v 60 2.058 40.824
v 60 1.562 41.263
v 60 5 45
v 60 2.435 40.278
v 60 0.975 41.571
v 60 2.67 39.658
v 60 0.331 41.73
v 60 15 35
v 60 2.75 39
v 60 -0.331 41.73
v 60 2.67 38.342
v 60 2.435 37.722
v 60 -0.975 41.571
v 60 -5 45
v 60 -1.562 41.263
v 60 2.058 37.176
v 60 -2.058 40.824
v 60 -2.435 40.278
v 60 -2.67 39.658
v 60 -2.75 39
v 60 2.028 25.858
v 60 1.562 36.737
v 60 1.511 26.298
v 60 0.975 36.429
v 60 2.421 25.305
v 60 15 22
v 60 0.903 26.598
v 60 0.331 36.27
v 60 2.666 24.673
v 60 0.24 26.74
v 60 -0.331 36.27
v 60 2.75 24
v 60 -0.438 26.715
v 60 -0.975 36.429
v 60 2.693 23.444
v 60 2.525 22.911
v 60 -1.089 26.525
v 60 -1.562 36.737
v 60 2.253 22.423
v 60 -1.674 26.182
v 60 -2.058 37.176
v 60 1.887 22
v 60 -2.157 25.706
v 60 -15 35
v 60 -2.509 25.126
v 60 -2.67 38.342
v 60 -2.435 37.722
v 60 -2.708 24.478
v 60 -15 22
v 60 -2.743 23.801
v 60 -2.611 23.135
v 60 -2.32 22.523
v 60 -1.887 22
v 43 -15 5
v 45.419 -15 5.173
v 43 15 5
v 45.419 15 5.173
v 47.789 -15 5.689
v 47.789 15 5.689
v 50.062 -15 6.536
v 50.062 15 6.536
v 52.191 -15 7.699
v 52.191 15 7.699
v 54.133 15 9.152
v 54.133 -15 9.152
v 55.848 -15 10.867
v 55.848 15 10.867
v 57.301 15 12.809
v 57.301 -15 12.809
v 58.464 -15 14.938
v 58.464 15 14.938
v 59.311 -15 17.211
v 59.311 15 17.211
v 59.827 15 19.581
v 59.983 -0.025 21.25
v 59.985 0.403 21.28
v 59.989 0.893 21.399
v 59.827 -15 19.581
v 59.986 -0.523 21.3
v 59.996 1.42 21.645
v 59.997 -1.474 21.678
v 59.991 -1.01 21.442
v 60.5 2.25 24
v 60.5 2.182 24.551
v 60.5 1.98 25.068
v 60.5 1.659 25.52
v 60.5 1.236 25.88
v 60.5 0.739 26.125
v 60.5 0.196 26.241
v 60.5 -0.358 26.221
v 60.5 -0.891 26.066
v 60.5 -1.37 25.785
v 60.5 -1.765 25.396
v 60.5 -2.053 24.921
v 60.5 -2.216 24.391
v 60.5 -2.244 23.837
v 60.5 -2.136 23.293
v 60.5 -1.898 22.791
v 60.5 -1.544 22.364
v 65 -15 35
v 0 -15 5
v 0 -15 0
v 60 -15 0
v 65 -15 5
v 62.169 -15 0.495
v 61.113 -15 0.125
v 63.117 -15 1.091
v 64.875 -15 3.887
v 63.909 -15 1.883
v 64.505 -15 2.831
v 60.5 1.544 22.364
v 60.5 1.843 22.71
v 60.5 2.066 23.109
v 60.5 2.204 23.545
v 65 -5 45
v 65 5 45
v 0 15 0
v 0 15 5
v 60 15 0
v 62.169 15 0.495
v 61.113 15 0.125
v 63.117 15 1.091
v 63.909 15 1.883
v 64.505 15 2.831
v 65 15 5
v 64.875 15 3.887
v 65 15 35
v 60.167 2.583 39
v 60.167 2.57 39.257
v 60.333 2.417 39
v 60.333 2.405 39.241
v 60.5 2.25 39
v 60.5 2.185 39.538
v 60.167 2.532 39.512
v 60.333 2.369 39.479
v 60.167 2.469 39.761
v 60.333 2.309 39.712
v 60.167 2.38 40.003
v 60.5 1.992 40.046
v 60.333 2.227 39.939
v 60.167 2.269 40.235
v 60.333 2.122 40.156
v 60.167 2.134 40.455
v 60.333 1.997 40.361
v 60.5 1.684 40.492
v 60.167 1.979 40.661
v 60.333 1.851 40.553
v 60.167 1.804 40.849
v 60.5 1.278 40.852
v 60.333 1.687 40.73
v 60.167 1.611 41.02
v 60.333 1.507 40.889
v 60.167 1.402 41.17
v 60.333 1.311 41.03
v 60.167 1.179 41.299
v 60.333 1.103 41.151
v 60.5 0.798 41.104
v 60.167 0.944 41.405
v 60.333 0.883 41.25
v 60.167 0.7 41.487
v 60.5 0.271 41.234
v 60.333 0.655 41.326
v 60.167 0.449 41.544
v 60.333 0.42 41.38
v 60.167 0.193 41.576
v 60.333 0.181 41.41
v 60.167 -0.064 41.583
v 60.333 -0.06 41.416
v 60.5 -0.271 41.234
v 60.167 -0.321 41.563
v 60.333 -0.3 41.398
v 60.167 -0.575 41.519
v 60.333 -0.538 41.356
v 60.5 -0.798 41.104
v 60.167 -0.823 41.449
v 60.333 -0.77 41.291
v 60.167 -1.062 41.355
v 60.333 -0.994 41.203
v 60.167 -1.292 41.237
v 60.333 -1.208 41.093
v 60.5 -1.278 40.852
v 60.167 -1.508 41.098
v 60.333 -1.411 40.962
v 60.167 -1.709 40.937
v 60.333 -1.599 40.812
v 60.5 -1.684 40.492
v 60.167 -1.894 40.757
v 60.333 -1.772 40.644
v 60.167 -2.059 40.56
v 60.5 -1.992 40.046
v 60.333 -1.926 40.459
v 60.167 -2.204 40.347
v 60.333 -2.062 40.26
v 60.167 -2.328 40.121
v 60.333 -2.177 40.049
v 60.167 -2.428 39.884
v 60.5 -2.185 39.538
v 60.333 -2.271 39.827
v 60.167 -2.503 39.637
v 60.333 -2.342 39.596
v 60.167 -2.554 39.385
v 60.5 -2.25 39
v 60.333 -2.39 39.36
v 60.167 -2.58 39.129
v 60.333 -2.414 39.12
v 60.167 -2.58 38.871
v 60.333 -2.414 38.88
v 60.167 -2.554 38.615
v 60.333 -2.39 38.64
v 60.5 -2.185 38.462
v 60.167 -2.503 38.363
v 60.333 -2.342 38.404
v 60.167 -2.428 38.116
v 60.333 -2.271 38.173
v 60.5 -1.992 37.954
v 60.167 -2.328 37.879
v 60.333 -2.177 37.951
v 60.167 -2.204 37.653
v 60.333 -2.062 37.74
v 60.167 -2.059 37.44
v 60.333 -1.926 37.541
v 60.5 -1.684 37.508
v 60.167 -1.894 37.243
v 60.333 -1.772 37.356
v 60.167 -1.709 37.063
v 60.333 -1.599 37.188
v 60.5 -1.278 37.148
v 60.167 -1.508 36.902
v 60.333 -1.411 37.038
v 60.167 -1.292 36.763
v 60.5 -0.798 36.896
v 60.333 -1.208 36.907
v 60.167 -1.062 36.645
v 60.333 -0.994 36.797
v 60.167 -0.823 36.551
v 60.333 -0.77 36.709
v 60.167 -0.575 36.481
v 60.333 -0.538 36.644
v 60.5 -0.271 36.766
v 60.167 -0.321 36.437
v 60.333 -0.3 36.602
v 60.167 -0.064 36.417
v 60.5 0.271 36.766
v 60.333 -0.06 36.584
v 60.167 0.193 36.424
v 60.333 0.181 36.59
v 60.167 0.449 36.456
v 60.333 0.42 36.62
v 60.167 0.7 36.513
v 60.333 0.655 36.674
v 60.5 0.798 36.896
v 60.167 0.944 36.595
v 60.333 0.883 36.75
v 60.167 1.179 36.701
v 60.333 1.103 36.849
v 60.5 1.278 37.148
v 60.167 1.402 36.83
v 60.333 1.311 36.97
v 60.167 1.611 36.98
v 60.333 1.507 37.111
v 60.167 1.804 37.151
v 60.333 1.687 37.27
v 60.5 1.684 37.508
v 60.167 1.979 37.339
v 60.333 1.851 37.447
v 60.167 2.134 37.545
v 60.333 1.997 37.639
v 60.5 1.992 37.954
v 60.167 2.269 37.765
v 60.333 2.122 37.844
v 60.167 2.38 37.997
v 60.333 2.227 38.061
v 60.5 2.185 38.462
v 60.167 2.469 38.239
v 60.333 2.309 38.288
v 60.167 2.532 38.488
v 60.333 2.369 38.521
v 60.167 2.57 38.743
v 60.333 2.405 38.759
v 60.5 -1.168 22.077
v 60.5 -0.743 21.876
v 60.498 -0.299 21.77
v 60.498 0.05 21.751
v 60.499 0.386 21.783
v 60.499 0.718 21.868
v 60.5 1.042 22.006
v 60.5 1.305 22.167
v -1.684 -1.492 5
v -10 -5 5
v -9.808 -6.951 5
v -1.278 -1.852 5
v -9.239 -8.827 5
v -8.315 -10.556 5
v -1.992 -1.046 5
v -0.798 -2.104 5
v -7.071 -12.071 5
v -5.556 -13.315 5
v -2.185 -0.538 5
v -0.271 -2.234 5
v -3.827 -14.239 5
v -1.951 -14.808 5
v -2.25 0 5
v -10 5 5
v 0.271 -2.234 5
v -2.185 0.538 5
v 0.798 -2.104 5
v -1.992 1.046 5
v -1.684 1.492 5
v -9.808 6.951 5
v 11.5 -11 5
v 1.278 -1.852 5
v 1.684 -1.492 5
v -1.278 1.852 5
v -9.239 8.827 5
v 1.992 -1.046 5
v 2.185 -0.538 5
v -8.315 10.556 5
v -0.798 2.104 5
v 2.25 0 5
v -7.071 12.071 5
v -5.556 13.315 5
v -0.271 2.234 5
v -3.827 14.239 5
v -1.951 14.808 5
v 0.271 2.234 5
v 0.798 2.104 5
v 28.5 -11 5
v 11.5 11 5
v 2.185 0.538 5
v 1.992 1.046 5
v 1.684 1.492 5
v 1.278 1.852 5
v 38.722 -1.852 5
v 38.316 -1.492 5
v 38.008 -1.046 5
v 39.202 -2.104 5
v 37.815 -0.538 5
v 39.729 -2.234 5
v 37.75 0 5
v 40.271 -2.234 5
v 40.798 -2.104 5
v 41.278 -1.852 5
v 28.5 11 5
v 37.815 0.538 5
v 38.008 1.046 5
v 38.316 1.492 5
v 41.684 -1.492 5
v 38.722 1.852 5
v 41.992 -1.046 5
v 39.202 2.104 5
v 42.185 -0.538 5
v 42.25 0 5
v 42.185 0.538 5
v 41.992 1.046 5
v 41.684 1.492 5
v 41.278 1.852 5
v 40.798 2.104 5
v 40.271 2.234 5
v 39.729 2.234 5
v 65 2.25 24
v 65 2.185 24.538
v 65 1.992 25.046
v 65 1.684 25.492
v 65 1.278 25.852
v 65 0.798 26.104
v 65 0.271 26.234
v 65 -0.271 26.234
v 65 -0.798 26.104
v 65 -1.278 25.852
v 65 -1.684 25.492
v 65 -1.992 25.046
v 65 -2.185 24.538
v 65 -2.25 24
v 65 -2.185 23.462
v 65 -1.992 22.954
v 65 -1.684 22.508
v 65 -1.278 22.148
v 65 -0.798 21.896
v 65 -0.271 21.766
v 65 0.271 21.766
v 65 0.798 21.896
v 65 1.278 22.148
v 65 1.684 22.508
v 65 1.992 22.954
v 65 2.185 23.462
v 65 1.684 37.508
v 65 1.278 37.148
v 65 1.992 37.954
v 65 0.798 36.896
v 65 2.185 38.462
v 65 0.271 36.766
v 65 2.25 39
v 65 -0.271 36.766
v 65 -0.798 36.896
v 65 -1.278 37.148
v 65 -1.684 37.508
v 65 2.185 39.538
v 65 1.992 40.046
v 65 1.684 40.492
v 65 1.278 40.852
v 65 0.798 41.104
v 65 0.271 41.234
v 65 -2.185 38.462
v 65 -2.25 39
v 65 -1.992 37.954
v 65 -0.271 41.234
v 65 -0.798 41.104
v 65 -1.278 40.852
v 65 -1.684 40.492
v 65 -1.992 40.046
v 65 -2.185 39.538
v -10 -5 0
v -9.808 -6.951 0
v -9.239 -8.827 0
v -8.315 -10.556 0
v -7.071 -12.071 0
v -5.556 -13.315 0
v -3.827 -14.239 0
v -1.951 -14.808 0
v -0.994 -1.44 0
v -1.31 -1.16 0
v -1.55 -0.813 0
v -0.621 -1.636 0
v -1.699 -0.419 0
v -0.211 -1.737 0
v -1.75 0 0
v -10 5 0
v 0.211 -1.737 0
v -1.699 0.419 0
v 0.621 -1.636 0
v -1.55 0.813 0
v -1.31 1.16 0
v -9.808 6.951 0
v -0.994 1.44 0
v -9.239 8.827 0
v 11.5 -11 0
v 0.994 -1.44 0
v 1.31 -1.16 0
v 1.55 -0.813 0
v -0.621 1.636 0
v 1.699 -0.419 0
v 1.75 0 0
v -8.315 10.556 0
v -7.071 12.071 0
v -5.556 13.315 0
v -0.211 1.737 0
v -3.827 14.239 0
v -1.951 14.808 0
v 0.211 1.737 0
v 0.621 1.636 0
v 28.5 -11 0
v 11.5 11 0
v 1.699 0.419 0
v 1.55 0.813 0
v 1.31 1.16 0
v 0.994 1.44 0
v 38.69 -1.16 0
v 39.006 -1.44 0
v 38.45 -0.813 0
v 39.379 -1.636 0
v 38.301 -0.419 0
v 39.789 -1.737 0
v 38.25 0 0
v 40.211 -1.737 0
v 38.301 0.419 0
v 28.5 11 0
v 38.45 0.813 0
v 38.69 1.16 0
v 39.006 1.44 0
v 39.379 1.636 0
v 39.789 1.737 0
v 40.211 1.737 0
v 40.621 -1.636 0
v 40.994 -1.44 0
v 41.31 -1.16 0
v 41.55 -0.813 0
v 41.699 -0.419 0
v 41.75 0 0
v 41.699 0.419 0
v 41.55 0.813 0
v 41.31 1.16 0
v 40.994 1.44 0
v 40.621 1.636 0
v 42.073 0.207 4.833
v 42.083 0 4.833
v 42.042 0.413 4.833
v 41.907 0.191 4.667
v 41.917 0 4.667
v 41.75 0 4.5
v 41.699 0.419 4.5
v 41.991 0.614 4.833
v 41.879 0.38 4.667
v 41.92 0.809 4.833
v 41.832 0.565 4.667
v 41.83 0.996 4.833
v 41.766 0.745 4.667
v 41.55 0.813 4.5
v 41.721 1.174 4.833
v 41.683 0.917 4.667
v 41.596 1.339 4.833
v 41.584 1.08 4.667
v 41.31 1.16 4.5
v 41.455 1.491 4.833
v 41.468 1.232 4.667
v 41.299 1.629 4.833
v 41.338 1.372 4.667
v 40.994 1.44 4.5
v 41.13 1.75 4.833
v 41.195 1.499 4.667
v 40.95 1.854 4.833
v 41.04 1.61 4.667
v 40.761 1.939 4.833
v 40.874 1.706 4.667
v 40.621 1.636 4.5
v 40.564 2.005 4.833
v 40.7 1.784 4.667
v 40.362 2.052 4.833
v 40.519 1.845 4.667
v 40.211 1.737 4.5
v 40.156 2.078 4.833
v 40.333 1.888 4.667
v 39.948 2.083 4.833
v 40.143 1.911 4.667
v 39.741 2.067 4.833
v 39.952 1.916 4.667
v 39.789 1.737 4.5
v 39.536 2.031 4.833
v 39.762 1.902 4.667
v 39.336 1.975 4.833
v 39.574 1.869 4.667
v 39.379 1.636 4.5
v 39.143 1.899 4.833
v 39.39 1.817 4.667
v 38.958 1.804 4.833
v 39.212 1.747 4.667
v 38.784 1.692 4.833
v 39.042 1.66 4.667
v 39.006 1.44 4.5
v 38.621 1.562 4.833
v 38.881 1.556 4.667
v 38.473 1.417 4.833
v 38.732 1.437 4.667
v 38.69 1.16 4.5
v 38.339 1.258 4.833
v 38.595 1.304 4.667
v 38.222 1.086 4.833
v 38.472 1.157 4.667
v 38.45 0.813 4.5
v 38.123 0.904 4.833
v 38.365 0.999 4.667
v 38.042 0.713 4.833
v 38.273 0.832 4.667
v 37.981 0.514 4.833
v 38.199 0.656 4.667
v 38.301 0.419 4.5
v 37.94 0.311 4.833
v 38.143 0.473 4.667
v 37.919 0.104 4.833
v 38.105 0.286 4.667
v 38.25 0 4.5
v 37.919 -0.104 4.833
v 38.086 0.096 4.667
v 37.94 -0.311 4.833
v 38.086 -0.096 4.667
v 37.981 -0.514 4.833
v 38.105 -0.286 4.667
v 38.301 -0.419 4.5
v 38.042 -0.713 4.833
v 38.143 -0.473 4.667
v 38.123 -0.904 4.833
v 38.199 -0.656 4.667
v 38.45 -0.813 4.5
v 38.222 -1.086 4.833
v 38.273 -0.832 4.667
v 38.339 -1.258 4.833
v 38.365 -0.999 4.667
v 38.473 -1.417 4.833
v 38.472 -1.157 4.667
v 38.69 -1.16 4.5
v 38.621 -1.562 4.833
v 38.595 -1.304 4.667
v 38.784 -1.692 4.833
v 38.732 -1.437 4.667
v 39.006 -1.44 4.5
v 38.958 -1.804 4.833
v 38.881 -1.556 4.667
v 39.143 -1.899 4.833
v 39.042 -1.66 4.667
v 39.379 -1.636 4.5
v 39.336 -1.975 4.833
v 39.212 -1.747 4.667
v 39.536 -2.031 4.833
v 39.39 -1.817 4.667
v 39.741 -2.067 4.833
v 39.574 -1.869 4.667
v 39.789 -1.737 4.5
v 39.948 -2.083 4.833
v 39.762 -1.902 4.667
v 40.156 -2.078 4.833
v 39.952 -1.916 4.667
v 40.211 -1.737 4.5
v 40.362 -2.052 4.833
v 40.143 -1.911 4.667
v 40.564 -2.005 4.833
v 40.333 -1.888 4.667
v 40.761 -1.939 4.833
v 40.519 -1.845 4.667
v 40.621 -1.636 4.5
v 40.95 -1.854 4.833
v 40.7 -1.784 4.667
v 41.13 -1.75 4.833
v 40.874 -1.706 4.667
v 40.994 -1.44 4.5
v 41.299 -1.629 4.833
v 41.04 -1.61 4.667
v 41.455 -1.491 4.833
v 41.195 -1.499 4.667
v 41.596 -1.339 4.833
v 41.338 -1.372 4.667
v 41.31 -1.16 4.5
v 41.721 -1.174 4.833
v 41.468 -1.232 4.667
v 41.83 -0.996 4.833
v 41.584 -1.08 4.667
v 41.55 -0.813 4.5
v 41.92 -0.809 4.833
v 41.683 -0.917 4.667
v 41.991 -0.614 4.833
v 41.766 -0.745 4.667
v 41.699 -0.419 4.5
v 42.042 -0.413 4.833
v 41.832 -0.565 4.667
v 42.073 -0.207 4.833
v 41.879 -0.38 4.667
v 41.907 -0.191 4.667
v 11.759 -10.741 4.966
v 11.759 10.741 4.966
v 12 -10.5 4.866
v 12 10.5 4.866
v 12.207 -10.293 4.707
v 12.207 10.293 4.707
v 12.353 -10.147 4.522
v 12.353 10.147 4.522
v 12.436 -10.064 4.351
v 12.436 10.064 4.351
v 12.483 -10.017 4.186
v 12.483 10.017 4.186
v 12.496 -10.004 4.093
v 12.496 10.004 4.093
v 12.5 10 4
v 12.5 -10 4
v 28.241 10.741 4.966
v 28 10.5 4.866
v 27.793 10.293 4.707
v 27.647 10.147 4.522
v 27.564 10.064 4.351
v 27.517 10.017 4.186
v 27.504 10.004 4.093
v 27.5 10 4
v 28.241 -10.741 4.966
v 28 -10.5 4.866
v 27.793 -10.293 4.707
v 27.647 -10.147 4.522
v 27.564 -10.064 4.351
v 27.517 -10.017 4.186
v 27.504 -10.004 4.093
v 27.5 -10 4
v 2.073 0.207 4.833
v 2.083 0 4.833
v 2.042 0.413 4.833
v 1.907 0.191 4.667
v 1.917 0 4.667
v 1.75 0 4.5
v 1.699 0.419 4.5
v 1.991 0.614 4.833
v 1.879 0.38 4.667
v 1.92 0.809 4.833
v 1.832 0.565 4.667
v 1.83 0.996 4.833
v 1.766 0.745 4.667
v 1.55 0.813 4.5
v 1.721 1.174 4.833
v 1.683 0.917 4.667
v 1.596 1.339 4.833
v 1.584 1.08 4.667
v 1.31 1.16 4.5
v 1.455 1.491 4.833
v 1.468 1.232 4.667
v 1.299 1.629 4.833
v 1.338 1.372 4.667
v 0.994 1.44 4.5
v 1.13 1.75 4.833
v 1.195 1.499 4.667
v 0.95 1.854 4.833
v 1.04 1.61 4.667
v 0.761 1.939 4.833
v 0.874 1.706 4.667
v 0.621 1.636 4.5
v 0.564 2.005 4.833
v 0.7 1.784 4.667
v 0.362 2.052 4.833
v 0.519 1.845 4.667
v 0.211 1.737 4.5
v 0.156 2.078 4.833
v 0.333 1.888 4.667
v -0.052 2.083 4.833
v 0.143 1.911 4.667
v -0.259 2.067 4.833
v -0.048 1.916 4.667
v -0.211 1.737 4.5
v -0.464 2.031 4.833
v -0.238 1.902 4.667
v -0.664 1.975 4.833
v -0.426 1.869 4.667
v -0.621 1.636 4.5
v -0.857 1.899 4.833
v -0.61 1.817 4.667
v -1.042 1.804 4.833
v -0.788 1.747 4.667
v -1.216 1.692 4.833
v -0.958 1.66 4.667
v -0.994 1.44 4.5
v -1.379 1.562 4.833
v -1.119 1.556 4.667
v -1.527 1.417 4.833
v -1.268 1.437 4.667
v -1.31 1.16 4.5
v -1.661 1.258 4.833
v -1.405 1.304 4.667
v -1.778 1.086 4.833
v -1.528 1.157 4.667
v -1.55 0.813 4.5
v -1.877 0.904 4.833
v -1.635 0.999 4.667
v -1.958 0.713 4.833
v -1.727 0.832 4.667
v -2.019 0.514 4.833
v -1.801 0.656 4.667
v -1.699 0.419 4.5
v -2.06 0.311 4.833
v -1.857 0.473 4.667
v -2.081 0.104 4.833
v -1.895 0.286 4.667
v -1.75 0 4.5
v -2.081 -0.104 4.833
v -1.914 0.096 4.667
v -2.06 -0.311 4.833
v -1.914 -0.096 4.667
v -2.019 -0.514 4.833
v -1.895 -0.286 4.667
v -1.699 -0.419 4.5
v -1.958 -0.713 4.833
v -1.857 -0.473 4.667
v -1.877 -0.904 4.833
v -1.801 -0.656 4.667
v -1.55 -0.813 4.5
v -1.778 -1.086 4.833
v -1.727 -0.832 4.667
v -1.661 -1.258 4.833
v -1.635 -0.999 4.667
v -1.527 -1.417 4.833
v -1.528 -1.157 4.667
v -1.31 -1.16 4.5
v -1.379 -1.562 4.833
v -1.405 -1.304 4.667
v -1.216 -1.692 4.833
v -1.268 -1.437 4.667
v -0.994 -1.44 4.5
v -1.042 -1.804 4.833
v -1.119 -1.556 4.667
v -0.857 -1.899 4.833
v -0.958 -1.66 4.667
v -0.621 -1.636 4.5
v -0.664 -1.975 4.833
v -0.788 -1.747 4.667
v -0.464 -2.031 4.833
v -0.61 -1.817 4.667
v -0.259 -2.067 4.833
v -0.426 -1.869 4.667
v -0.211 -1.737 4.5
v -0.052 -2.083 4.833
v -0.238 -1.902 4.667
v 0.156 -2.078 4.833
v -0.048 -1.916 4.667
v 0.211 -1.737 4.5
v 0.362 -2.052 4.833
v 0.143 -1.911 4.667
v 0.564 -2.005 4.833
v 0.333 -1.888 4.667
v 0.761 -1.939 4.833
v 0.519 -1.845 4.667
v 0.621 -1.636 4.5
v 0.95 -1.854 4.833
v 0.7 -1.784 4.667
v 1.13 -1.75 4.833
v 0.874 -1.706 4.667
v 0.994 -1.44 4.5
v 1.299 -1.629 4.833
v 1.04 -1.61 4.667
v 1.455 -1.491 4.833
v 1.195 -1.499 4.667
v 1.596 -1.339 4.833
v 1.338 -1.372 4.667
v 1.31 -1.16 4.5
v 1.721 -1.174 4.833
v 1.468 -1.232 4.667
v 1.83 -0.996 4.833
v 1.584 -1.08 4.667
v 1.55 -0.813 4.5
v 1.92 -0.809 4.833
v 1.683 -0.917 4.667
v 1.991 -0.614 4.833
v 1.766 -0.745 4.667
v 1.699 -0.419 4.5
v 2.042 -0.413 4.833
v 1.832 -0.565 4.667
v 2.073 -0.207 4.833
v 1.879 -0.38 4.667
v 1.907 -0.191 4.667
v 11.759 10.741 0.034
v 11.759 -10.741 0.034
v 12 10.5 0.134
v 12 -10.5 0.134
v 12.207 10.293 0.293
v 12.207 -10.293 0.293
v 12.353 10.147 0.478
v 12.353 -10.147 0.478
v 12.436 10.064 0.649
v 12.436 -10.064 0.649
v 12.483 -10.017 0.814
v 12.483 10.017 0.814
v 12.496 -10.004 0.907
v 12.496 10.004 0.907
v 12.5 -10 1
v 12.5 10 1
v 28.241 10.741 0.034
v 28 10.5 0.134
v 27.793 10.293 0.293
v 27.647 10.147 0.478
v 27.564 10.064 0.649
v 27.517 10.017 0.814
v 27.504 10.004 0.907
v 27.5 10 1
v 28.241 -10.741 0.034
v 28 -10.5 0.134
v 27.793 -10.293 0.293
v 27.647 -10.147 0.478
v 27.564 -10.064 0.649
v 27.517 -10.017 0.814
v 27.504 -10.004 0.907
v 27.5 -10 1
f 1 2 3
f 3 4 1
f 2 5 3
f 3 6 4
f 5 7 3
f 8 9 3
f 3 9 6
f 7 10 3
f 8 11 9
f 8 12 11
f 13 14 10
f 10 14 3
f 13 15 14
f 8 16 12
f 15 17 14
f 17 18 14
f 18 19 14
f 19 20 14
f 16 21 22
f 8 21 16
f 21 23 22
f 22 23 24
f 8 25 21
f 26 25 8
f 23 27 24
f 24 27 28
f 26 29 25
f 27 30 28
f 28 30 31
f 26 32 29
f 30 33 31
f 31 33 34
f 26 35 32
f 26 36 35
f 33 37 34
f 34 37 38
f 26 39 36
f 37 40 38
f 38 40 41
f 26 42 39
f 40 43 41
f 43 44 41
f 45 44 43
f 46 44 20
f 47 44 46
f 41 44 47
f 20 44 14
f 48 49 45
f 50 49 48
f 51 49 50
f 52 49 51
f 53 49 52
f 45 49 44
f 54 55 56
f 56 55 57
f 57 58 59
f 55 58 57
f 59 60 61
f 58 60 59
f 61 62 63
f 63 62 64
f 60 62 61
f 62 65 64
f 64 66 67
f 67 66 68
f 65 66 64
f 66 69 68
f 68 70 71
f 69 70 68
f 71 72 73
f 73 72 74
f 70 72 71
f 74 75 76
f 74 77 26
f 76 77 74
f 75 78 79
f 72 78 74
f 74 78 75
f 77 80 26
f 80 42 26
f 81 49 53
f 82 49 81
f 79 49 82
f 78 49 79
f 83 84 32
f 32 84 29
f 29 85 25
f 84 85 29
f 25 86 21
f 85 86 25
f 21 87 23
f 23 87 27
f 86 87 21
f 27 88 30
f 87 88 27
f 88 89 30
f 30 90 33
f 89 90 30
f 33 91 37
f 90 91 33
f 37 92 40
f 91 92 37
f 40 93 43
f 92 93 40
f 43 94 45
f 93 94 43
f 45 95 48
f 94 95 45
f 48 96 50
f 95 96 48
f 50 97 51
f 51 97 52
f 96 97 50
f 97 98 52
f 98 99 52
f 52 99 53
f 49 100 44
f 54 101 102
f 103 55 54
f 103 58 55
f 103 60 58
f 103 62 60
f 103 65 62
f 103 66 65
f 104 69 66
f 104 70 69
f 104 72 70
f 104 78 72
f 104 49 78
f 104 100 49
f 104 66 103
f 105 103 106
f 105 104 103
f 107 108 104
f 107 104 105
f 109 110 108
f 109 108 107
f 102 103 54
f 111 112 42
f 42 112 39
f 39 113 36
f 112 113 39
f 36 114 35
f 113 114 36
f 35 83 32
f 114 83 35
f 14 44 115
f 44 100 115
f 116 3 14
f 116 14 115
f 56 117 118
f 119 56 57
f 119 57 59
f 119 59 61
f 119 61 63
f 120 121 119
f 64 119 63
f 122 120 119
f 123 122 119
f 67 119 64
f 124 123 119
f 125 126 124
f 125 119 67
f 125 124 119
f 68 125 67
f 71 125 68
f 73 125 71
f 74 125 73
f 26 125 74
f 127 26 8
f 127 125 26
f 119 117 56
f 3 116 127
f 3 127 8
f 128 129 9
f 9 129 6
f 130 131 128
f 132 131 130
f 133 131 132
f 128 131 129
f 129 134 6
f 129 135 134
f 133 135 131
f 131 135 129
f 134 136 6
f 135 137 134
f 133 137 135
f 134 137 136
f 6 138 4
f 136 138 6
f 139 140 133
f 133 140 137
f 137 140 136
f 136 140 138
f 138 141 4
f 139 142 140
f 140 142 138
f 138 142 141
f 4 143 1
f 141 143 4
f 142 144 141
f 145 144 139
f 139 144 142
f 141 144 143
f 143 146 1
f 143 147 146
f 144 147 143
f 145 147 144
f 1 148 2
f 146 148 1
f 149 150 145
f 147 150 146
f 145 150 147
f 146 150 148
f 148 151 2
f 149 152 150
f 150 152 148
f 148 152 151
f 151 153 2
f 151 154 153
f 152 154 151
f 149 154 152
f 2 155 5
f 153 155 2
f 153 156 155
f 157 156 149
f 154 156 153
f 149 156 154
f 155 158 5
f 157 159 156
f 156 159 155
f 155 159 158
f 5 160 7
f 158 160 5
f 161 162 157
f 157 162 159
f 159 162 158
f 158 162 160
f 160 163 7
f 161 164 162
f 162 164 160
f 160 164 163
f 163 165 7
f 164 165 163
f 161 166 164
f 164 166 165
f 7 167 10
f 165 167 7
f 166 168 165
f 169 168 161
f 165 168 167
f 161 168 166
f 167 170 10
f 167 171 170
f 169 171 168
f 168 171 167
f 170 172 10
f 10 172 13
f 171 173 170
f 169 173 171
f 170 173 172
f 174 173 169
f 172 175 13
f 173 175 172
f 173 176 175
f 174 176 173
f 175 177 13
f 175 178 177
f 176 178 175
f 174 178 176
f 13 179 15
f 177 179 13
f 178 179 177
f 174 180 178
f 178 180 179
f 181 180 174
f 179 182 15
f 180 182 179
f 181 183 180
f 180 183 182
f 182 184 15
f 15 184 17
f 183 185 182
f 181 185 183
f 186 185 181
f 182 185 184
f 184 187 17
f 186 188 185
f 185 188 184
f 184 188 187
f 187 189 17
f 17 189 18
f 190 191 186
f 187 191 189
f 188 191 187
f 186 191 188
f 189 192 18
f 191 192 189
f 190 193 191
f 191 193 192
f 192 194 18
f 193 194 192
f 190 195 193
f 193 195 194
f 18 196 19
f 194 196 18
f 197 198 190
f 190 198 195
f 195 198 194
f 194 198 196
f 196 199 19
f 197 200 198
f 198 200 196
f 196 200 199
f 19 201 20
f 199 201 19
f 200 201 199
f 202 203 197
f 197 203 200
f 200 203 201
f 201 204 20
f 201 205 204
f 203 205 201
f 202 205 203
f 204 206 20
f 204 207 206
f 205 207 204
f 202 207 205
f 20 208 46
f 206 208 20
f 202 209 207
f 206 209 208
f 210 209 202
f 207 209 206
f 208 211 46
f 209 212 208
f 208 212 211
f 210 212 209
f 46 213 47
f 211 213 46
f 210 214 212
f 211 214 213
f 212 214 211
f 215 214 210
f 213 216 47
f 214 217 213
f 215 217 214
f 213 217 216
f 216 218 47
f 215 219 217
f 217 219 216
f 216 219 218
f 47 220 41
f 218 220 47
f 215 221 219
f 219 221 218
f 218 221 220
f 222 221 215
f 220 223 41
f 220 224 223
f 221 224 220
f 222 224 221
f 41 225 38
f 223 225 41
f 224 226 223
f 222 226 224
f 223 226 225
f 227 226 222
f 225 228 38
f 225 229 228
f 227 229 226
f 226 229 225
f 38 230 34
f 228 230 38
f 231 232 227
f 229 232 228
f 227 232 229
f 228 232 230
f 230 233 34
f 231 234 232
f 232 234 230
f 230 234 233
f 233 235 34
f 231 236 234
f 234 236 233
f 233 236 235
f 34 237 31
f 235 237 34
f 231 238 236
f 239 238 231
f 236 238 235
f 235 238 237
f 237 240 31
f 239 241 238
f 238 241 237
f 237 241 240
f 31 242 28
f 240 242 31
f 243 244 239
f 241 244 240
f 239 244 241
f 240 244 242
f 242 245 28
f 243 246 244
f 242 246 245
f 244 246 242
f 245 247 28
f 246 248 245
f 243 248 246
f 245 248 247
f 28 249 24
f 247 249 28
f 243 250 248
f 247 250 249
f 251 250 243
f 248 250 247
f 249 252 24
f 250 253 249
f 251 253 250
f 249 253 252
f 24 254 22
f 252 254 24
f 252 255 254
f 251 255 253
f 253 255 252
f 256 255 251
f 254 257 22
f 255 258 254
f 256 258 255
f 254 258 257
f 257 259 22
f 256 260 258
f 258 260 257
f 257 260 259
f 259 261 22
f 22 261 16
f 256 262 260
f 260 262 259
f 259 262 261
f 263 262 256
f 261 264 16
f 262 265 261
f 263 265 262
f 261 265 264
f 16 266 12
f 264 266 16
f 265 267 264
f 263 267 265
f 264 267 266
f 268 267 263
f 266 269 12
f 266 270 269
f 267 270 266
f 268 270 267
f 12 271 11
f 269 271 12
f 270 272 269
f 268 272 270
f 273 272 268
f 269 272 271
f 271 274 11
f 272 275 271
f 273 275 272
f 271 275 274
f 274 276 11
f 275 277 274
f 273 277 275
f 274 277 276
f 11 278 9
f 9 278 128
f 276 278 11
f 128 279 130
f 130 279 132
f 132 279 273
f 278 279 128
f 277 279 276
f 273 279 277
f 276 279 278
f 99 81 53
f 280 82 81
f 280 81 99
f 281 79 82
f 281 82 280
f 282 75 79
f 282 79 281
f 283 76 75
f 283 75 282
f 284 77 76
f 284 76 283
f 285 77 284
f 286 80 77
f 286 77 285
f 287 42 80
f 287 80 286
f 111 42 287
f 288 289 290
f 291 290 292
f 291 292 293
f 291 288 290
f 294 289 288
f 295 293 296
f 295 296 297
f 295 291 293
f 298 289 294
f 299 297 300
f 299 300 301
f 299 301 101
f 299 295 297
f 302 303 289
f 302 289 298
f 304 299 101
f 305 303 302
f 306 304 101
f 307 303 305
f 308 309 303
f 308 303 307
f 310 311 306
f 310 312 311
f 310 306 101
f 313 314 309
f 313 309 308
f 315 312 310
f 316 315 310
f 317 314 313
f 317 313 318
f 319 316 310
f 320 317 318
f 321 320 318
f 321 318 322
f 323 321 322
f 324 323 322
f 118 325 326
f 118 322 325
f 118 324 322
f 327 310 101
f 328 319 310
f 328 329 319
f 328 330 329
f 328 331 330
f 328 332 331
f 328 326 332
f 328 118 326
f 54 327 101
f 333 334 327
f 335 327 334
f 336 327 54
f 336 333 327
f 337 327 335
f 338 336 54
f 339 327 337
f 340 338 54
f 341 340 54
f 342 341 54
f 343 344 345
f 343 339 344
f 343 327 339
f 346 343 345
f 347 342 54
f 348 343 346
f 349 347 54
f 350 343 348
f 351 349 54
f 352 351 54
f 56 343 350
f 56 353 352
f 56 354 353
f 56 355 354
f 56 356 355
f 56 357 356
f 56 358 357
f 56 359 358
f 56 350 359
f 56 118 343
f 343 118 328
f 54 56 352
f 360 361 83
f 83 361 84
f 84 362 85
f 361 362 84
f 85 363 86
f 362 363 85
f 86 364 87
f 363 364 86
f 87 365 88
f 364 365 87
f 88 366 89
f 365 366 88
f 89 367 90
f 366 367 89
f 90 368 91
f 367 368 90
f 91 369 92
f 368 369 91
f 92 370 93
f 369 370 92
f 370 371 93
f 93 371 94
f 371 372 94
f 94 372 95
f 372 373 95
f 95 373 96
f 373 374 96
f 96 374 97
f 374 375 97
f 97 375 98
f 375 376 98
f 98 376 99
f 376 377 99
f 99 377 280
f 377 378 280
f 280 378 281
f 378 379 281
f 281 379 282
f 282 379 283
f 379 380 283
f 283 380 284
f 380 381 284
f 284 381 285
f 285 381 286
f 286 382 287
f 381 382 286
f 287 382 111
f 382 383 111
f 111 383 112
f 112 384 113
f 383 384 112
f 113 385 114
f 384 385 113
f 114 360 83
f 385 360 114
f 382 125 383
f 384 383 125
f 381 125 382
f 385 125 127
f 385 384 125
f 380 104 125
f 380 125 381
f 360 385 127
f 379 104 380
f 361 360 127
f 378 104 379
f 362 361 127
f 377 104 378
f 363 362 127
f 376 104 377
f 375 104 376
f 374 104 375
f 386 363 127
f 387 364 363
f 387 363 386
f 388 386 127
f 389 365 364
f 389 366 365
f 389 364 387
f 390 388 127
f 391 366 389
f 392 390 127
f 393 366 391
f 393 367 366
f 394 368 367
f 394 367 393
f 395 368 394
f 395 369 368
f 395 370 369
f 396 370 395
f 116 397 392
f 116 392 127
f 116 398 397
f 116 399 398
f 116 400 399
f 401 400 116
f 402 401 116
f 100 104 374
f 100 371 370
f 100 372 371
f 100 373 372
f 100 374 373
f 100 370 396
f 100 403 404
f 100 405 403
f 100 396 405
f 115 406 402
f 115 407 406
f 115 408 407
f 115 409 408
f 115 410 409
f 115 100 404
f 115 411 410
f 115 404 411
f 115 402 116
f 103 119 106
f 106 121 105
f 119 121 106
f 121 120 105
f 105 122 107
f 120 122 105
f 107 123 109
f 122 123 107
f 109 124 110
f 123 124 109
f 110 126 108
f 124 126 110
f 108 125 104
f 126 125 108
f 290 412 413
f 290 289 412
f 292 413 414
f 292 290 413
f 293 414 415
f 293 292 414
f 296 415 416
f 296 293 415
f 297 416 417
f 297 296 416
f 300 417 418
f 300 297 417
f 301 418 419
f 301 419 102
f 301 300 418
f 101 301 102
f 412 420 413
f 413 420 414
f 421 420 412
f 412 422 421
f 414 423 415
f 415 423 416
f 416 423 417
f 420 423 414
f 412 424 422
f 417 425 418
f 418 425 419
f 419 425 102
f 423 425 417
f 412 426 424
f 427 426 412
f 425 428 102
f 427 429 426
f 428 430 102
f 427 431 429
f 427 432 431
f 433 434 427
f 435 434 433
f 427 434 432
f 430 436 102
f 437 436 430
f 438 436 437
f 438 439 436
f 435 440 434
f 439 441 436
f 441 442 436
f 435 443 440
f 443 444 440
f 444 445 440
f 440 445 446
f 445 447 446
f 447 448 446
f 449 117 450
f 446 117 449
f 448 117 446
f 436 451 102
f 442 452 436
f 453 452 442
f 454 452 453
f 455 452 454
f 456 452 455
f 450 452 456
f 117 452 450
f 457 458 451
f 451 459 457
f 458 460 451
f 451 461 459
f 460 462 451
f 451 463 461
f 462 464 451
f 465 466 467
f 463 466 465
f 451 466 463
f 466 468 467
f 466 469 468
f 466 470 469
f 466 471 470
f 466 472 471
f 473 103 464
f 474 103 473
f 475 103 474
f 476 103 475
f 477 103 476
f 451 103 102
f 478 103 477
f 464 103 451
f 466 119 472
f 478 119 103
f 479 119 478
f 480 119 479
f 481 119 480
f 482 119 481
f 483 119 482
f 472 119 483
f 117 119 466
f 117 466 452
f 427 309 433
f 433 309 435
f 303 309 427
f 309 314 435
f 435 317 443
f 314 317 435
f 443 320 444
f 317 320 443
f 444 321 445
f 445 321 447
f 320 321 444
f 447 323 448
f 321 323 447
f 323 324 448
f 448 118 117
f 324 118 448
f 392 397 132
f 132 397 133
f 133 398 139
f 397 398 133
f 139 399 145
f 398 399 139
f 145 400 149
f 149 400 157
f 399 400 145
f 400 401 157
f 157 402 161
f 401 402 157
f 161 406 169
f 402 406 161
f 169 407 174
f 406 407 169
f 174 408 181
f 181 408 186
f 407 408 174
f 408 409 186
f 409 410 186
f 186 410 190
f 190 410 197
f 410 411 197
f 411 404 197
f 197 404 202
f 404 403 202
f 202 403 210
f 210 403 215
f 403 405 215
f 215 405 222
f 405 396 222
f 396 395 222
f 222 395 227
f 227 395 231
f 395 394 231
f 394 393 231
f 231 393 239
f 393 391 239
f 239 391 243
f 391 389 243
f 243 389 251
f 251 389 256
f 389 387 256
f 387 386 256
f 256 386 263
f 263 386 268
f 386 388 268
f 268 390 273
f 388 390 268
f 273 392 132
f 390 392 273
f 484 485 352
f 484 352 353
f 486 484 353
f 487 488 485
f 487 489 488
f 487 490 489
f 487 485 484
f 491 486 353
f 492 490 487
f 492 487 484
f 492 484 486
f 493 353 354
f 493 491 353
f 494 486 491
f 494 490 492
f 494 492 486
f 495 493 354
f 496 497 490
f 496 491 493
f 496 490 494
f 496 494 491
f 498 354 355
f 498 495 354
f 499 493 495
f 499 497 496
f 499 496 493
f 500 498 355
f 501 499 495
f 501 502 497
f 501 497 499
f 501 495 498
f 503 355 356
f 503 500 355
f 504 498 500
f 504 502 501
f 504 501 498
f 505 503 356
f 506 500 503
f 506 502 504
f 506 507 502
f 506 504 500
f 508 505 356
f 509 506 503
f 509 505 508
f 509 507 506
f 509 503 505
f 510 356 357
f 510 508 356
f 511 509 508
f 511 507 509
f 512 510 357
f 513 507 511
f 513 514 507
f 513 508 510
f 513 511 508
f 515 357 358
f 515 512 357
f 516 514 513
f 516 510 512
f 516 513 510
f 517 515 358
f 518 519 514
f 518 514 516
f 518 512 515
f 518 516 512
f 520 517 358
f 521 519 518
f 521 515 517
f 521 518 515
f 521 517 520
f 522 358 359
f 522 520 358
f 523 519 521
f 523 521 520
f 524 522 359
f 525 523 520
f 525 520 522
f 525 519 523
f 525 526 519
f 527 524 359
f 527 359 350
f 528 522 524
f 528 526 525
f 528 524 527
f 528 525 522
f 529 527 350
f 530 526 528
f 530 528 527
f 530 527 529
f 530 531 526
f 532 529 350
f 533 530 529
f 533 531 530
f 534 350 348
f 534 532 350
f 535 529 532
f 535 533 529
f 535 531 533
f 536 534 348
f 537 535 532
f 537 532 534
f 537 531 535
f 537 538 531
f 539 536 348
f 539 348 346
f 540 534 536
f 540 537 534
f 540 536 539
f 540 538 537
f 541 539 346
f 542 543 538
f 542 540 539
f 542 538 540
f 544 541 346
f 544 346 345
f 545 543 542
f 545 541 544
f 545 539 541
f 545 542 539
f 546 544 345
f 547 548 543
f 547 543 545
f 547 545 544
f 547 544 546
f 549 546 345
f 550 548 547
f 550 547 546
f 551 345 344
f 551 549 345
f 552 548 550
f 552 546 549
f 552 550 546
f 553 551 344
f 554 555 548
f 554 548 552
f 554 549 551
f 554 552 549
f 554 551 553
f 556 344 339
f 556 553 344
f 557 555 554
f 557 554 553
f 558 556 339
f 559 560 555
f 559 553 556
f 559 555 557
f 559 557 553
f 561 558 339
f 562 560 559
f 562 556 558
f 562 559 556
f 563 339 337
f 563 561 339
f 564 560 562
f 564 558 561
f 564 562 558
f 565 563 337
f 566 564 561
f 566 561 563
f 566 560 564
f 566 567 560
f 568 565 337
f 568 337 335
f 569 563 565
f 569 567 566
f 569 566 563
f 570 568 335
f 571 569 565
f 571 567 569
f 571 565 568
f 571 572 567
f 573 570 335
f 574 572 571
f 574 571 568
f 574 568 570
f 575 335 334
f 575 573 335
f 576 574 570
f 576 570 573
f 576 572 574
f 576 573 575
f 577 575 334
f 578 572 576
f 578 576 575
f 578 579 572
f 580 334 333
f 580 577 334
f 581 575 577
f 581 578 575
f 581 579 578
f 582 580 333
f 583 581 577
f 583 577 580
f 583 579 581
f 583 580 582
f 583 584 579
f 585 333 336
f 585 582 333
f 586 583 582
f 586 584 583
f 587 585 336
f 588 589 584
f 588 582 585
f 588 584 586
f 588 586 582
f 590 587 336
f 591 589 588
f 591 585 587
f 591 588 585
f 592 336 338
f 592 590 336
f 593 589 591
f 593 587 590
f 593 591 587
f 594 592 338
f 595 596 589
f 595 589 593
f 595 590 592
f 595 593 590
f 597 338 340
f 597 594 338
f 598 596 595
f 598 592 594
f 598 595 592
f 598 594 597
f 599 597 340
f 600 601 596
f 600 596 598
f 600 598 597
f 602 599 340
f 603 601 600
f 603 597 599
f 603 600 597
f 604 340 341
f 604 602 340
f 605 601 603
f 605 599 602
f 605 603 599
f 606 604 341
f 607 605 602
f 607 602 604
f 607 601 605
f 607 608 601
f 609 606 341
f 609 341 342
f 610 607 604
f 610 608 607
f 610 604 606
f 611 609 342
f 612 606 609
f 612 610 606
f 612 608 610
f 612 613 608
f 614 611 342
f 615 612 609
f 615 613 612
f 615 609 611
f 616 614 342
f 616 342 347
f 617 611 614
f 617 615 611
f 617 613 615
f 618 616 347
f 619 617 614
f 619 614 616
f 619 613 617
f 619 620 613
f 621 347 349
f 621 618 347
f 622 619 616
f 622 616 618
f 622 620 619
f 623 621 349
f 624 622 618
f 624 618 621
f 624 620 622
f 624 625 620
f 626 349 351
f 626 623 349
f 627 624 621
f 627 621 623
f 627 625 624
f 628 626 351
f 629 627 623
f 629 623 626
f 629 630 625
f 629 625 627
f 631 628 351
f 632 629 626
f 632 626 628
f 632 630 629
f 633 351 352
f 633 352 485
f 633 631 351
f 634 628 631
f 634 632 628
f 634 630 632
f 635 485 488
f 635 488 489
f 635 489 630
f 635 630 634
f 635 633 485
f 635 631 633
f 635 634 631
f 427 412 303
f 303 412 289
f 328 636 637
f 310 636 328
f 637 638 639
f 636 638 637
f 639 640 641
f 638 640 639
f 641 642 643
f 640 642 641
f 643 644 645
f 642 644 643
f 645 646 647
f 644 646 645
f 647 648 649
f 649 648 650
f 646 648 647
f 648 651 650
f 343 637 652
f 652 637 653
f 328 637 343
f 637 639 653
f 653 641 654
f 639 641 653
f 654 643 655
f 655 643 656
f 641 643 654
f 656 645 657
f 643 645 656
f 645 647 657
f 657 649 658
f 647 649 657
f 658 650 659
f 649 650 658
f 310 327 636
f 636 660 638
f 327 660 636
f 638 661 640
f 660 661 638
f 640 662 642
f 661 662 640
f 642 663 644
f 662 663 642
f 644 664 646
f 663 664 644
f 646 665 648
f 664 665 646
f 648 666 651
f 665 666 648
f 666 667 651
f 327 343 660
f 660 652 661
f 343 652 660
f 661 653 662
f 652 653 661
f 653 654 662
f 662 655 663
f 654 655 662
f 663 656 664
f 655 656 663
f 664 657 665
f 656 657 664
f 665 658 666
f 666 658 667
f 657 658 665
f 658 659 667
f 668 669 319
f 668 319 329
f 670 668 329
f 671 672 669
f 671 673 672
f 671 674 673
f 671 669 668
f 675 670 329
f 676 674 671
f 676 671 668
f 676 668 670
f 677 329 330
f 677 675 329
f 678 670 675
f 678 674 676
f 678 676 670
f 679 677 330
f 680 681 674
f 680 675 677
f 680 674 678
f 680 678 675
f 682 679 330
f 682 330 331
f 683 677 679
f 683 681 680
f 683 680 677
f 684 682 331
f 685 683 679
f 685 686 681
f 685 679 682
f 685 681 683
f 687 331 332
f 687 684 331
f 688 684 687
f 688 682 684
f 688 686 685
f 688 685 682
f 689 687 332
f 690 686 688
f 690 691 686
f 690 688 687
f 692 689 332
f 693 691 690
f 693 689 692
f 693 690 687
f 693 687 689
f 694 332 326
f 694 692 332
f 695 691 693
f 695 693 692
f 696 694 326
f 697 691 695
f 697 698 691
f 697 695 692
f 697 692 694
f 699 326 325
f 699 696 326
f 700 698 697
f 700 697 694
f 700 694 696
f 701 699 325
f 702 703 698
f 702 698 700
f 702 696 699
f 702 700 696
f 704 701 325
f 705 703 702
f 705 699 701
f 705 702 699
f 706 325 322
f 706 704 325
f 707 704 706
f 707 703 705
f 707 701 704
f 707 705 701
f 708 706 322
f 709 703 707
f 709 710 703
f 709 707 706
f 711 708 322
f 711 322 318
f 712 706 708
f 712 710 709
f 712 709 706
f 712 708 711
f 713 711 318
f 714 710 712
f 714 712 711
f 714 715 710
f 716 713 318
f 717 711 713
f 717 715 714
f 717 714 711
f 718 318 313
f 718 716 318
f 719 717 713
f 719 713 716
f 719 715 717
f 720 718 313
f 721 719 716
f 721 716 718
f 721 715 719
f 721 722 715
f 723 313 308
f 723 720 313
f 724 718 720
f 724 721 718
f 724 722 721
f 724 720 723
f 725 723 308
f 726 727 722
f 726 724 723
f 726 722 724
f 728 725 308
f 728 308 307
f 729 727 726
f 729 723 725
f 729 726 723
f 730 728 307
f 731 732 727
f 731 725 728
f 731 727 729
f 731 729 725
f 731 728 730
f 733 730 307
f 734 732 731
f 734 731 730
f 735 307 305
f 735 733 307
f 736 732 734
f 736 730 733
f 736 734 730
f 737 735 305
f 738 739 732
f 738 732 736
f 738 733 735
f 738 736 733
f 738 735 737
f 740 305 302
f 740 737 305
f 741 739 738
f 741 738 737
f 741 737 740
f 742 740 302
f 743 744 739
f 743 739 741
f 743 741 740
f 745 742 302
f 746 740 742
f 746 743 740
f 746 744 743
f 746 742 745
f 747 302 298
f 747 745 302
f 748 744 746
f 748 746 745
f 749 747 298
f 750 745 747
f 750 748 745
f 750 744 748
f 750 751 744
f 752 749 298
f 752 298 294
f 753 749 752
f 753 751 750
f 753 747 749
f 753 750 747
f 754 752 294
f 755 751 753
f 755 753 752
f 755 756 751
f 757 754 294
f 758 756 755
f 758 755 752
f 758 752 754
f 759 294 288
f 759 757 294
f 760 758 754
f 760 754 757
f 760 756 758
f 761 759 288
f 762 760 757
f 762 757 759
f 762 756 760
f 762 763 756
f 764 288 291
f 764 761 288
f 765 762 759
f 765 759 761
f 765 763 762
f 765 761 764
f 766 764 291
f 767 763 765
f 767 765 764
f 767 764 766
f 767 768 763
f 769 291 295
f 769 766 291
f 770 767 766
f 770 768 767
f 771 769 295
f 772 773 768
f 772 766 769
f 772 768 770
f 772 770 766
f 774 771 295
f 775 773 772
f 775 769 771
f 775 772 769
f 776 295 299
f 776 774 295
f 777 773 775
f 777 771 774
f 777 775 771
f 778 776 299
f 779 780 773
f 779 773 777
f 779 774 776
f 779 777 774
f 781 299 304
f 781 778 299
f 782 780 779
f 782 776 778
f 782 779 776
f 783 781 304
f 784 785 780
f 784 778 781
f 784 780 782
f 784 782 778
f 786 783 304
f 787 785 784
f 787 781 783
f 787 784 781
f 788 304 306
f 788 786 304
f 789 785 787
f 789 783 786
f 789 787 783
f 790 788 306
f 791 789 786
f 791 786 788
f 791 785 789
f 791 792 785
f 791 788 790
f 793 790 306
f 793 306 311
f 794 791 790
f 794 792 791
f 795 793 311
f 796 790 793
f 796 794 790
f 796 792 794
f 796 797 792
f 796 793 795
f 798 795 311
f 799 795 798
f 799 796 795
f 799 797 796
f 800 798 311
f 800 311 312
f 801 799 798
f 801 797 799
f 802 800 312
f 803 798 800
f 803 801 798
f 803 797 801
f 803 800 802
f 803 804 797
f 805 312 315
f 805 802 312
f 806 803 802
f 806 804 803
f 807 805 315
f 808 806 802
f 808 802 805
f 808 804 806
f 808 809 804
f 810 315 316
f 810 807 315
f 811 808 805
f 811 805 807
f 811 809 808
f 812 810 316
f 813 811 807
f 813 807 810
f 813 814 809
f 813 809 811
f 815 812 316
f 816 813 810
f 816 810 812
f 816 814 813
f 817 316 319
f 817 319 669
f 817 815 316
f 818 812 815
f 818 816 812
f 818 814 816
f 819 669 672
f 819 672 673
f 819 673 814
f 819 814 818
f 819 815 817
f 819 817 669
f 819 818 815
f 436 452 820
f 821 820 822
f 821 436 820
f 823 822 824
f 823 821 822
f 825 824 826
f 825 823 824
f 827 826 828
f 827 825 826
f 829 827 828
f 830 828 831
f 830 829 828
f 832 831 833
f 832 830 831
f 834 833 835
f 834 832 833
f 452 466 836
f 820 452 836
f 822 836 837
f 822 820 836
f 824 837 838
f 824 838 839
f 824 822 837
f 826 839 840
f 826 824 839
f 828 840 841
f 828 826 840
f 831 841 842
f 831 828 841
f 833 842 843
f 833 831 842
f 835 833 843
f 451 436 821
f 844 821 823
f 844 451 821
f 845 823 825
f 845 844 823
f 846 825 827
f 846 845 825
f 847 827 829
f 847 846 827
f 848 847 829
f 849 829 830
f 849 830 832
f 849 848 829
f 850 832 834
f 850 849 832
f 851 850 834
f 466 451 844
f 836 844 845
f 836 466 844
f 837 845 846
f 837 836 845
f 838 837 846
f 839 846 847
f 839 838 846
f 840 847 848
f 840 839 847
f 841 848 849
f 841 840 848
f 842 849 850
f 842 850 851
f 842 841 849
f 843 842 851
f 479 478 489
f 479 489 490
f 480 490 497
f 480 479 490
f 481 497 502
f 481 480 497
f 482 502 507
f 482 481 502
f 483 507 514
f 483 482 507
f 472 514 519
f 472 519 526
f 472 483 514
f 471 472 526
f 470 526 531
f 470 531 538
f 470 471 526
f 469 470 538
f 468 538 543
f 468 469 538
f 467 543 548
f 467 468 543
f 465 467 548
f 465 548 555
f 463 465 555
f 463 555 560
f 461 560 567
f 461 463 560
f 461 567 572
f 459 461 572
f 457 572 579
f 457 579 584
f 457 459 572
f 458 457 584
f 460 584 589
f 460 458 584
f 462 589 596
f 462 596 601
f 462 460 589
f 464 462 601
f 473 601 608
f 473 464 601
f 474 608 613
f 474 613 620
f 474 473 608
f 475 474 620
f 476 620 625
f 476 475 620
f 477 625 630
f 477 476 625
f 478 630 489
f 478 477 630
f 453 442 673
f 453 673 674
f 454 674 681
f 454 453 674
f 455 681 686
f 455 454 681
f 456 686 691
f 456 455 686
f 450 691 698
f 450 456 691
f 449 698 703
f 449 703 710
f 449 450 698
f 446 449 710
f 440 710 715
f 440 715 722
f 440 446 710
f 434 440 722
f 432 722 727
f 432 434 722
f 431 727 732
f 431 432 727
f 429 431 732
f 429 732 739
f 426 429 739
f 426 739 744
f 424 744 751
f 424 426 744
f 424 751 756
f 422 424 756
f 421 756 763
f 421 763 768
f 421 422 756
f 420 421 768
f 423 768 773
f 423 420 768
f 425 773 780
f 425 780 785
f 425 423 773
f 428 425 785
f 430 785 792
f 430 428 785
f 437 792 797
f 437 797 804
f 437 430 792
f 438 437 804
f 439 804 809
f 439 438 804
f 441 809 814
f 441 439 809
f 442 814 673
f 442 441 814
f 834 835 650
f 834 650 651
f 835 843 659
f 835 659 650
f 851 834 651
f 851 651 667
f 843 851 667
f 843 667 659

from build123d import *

# Parameters (mm, degrees)
SKETCH_W        = 75
SKETCH_H        = 30
SKETCH_R        = 1.75
SKETCH_W_2      = 15
SKETCH_H_2      = 20
PAD_DEPTH       = 5
FILLET_R        = 10
FILLET001_R     = 1
SKETCH001_W     = 5
SKETCH001_H     = 30
PAD001_DEPTH    = 40
FILLET002_R     = 5
FILLET003_R     = 17
SKETCH002_R     = 2.25
POCKET_DEPTH    = 75.001
CHAMFER_SIZE    = 10
CHAMFER001_SIZE = 0.5


with BuildPart() as part:
    # Sketch → Pad (new body)
    with BuildSketch(Plane.XY):
        with Locations((27.5, 0)):
            Rectangle(SKETCH_W, SKETCH_H)
        Circle(SKETCH_R, mode=Mode.SUBTRACT)
        with Locations((40, 0)):
            Circle(SKETCH_R, mode=Mode.SUBTRACT)
        with Locations((20, 0)):
            Rectangle(SKETCH_W_2, SKETCH_H_2, mode=Mode.SUBTRACT)
    extrude(amount=PAD_DEPTH)

    # Fillet
    fillet_edges = [part.edges().sort_by_distance(p)[0] for p in [
        (-10, 15, 2.5),
        (-10, -15, 2.5),
    ]]
    fillet(fillet_edges, radius=FILLET_R)

    # Fillet001
    fillet001_edges = [part.edges().sort_by_distance(p)[0] for p in [
        (12.5, 0, 5),
        (12.5, 0, 0),
        (20, 10, 0),
        (20, 10, 5),
        (27.5, 0, 5),
        (20, -10, 5),
        (27.5, 0, 0),
        (20, -10, 0),
    ]]
    fillet(fillet001_edges, radius=FILLET001_R)

    # Sketch001 (on Face18 of Fillet001) → Pad001 (join)
    with BuildSketch(Plane.XY.offset(5)):
        with Locations((62.5, 0)):
            Rectangle(SKETCH001_W, SKETCH001_H)
    extrude(amount=PAD001_DEPTH)

    # Fillet002
    fillet002_edges = [part.edges().sort_by_distance(p)[0] for p in [
        (65, 0, 0),
    ]]
    fillet(fillet002_edges, radius=FILLET002_R)

    # Fillet003
    fillet003_edges = [part.edges().sort_by_distance(p)[0] for p in [
        (60, 0, 5),
    ]]
    fillet(fillet003_edges, radius=FILLET003_R)

    # Sketch002 (on Face9 of Fillet003) → Pocket (cut, through all)
    with BuildSketch(Plane.YZ.offset(65)):
        with Locations((0, 39)):
            Circle(SKETCH002_R)
        with Locations((0, 24)):
            Circle(SKETCH002_R)
    extrude(amount=-POCKET_DEPTH, mode=Mode.SUBTRACT)

    # Chamfer
    chamfer_edges = [part.edges().sort_by_distance(p)[0] for p in [
        (62.5, -15, 45),
        (62.5, 15, 45),
    ]]
    chamfer(chamfer_edges, length=CHAMFER_SIZE)

    # Chamfer001
    chamfer001_edges = [part.edges().sort_by_distance(p)[0] for p in [
        (60, -2.25, 39),
        (60, -1.171165, 25.921165),
        (60, 1.921165, 22.828835),
        (38.25, 0, 5),
        (-1.75, 0, 5),
    ]]
    chamfer(chamfer001_edges, length=CHAMFER001_SIZE)


solid = part.part
